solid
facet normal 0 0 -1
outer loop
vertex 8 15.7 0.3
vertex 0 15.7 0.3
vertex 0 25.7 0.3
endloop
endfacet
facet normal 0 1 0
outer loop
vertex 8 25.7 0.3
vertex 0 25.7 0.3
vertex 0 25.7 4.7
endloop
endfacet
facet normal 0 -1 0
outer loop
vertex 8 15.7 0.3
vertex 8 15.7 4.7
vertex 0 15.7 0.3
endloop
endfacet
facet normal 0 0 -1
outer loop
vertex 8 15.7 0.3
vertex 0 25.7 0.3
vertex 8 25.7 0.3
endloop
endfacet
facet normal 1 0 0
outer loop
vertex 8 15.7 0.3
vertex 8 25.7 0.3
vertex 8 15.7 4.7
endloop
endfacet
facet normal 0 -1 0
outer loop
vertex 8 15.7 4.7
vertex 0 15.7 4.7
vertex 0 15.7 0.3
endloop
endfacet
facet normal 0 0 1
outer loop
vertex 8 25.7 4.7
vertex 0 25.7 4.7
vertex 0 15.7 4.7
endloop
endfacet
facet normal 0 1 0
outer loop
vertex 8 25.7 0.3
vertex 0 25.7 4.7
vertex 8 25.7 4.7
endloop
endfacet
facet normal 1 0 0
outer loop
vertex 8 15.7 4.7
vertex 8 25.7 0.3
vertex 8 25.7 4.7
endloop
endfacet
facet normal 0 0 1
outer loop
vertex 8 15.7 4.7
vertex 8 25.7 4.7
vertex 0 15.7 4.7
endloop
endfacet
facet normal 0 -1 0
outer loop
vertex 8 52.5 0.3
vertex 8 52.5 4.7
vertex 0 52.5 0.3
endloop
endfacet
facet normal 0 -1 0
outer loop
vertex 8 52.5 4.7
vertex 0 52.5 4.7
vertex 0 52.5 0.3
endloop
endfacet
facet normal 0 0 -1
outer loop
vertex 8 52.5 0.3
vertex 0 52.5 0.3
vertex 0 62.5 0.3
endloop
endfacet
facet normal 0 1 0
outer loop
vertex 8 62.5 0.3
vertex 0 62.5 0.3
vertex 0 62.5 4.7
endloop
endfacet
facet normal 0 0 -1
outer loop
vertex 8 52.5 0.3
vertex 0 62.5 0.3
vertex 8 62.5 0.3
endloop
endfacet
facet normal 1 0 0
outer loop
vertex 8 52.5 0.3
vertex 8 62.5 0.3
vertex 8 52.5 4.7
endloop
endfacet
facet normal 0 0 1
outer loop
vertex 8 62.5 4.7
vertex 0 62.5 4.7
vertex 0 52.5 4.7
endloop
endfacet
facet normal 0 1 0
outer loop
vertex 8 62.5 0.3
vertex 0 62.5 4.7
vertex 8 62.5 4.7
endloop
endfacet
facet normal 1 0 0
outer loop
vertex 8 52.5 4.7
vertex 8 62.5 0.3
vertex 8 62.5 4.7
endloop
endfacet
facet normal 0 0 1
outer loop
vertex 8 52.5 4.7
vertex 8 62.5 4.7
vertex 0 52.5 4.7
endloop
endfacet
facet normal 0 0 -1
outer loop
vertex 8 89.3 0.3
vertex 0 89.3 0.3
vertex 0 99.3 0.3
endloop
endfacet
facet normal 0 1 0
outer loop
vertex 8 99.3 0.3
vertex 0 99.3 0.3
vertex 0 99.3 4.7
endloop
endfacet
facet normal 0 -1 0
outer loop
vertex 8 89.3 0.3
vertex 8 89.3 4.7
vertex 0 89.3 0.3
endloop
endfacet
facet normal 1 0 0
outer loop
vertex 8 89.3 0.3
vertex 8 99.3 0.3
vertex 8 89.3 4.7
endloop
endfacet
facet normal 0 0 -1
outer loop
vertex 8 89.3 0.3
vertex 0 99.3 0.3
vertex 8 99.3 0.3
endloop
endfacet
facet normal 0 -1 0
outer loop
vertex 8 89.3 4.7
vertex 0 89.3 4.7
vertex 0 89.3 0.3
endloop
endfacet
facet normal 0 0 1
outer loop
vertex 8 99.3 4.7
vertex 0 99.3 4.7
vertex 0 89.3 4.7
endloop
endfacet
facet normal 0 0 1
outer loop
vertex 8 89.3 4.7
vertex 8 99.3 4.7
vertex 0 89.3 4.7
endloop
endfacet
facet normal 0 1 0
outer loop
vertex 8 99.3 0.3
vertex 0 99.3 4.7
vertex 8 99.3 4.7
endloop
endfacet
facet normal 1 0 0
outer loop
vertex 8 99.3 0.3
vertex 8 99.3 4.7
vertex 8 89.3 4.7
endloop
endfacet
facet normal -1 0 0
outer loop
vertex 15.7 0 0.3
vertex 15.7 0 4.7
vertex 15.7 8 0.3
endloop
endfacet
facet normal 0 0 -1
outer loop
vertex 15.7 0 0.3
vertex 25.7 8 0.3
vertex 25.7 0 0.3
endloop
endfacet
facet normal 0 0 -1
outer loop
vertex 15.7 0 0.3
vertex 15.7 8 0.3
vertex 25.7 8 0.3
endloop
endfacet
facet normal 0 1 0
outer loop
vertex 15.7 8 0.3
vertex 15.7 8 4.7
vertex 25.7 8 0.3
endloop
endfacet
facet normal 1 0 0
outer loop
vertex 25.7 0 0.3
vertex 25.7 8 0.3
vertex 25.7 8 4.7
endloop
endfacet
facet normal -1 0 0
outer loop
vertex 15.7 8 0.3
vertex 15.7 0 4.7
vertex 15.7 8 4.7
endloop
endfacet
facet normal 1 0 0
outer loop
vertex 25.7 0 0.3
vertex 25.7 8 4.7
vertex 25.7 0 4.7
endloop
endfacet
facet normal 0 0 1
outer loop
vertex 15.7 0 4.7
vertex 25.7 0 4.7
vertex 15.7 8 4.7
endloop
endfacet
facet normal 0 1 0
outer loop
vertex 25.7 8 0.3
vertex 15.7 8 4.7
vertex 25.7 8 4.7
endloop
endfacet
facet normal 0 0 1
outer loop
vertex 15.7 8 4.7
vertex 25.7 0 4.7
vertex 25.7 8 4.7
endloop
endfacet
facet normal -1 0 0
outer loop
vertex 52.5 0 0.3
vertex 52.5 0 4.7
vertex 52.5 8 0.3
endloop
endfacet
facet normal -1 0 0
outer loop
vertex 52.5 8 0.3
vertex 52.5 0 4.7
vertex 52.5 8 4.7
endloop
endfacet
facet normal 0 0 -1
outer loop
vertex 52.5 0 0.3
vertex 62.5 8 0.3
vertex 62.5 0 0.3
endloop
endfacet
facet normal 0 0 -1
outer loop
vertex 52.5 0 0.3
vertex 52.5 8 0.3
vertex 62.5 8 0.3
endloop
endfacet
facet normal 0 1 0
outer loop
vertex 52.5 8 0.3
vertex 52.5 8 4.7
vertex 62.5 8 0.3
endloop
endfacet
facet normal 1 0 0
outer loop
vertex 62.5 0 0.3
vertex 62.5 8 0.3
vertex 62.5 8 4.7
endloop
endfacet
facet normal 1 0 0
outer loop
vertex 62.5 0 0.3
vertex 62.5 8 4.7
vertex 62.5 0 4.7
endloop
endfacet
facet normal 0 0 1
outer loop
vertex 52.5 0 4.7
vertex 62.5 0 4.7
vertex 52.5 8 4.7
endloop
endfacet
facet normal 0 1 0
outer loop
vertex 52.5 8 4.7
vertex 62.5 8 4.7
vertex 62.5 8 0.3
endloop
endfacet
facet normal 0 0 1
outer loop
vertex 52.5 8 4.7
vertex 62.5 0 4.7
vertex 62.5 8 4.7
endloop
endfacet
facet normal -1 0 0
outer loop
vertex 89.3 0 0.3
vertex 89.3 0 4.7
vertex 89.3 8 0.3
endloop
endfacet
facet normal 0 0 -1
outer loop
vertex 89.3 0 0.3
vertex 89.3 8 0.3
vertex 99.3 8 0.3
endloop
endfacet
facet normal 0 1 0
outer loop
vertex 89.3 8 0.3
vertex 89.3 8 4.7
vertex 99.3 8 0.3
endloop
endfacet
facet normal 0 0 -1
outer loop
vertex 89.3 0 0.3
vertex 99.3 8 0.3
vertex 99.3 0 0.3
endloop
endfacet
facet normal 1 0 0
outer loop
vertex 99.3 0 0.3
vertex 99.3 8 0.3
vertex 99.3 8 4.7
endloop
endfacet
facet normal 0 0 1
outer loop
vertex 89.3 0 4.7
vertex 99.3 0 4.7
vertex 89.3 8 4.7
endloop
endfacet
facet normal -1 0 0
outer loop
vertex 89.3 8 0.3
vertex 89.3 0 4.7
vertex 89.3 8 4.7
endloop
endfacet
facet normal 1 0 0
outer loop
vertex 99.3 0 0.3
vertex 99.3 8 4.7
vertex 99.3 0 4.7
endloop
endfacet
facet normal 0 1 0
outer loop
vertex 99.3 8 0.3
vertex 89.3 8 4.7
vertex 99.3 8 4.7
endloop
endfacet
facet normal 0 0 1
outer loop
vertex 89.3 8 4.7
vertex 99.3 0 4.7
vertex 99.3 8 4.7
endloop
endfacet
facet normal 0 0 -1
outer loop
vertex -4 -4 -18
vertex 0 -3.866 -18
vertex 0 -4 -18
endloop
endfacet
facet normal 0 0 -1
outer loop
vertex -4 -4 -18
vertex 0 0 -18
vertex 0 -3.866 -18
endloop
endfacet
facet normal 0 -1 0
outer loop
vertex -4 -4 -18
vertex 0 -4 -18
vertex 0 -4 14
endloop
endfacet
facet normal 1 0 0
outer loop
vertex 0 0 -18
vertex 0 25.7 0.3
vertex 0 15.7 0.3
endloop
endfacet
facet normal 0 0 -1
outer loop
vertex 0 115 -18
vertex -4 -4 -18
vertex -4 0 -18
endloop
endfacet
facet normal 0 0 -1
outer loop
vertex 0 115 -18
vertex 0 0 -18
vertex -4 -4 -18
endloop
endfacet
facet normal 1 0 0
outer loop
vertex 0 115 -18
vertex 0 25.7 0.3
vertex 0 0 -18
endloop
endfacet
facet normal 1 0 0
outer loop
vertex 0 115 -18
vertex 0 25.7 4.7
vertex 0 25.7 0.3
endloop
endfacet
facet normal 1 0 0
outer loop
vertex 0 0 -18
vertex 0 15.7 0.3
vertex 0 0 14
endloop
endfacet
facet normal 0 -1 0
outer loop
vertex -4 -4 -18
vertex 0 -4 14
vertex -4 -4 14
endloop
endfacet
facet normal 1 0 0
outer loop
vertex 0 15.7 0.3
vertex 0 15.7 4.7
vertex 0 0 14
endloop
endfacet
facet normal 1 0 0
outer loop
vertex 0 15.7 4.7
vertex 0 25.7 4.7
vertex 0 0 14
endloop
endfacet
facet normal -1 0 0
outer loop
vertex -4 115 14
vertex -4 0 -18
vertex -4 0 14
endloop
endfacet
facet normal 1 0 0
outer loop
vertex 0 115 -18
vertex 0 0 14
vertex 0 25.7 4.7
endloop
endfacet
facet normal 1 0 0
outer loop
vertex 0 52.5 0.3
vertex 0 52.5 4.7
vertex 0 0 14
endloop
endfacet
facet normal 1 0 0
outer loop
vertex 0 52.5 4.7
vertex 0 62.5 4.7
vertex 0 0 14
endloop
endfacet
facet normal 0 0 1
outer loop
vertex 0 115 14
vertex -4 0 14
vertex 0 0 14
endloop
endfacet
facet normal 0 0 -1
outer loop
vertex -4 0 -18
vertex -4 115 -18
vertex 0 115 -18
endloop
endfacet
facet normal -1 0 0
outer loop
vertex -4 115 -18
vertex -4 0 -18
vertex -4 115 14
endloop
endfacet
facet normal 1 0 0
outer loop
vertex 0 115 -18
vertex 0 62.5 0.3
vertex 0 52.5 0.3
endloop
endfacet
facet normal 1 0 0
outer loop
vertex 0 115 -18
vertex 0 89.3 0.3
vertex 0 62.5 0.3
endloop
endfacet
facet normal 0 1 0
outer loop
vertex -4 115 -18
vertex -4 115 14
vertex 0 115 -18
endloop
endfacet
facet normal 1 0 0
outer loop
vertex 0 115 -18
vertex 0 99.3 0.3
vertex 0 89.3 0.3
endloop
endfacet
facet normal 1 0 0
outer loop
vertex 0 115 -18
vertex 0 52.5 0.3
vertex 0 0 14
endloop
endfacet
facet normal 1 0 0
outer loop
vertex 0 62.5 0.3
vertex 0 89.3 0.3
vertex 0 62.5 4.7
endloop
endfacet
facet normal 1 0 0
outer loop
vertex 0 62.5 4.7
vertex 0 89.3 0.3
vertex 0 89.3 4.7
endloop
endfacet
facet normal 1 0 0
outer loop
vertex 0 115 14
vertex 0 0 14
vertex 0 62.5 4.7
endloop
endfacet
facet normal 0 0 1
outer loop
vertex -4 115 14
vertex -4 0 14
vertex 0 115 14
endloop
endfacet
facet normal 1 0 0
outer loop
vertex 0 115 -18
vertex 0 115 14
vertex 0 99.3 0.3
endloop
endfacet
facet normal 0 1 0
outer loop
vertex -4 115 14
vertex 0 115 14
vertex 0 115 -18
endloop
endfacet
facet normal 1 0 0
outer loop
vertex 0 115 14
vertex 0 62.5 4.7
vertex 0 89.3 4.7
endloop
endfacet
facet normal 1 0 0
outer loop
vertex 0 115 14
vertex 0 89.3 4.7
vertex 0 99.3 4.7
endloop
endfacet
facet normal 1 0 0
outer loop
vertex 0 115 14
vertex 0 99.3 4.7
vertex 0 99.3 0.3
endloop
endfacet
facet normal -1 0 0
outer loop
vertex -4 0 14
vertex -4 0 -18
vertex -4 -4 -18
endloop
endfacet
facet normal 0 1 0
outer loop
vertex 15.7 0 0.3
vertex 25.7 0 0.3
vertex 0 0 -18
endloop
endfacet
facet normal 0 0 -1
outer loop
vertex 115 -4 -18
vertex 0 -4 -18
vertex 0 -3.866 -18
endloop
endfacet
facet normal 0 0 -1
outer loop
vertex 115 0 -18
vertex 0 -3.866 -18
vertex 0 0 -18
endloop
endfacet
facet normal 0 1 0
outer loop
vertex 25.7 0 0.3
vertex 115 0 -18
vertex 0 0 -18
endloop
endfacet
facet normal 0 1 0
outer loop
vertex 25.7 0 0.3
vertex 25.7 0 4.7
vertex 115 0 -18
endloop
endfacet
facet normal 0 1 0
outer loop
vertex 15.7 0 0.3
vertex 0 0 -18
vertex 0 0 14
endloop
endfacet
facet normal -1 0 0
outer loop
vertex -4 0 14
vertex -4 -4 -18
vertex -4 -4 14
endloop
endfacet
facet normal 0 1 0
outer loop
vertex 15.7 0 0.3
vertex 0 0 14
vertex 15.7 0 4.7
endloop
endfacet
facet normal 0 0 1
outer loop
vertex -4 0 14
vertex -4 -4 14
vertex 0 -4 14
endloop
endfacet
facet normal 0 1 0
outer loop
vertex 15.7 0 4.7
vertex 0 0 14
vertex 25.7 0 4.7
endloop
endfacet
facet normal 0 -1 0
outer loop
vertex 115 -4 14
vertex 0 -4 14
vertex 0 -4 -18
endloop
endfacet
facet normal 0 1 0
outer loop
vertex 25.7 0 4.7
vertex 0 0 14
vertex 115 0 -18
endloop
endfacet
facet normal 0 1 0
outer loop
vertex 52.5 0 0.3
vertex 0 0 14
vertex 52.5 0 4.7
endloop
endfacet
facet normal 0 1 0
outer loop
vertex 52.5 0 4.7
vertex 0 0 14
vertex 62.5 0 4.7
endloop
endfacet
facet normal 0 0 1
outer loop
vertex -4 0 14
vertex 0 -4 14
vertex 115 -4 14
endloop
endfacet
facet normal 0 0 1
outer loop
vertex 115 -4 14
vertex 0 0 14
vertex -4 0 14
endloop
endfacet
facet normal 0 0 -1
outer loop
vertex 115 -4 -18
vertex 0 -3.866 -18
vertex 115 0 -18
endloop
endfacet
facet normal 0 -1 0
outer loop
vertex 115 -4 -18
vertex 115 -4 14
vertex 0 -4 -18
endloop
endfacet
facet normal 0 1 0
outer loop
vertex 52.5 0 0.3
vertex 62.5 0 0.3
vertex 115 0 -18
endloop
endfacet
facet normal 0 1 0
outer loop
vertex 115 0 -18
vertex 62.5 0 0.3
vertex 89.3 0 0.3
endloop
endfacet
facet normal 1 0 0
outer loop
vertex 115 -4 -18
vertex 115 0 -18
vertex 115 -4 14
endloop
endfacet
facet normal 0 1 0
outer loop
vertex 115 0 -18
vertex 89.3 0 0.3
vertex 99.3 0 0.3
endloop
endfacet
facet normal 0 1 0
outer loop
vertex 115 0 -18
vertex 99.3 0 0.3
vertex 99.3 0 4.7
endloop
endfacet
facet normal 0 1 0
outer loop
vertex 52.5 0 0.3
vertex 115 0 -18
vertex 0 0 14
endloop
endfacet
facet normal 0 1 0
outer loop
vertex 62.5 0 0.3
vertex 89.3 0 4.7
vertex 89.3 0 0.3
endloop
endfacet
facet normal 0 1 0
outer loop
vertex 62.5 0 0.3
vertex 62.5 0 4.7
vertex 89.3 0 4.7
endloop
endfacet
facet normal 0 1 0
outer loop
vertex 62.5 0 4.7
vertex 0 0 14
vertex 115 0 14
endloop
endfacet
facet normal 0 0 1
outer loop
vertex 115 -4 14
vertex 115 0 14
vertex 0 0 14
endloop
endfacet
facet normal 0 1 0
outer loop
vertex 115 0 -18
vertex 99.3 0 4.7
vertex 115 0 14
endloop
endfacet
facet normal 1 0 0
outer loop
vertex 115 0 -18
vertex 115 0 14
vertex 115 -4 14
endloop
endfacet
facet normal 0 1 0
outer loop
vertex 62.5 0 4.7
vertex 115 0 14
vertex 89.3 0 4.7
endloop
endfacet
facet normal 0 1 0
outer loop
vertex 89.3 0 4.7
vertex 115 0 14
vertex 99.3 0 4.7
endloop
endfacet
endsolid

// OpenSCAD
// ============================================================================
//  CORNER FENCE — L-bracket half of the two-piece corner first-hole jig
//  For drilling the hole grid of an 18mm plywood pegboard panel.
//
//  Pattern assumed: 10mm holes on a 50mm grid, first hole 25mm from each edge.
//
//  Coordinate convention (matches the other jigs in this folder):
//    - Panel top surface  = z = 0
//    - Panel interior     = x > 0, y > 0   (panel corner at the origin)
//    - Fence inner faces at x = 0 and y = 0 bear against the panel edge faces
//      for the full panel_t below z = 0 (plus fence_top above).
//
//  Two walls wrap the outside of the panel corner. Six tabs (three per wall)
//  reach inward and drop into the notches of corner_base.scad — that joint
//  registers the fence square to the plate; glue it and it's permanent.
//
//  PRINT: as modelled — the wall bottom edges (panel_t below z=0) stand on
//  the bed. Walls are vertical plates: clean print, no supports.
//  Use a BRIM — the bed contact is two 4mm-wide strips (~120mm each).
//
//  Joint dimensions MUST match corner_base.scad — keep them in sync.
// ============================================================================

// ------------------------- PANEL / PATTERN -------------------------
edge_offset = 25;   // [mm] first hole centre distance from each edge
pitch       = 50;   // [mm] hole grid spacing
panel_t     = 18;   // [mm] plywood thickness (fences reach this far below z=0)

// --------------------------- SEED GUIDES ---------------------------
// Must match corner_base.scad so `reach` (fence length) stays identical.
seed_cols = 2;
seed_rows = 2;

// ------------------------------ BODY -------------------------------
fence_t      = 4;    // [mm] fence wall thickness
fence_top    = 14;   // [mm] fence height above panel top surface (z=0)
clamp_gap    = 25;   // [mm] (kept for reach parity with corner_base.scad)
edge_margin  = 15;

// --------------------- FENCE JOINT (tabs) ---------------------------
// Tabs reach +x / +y into the plate's edge notches. tab_w < notch_w=12,
// tab reach (wall_embed + tab_in) < notch_d=8.4, z inside plate_t=5.
tab_w      = 10;     // [mm] tab width (1mm clearance per side in the notch)
tab_t      = 4.4;    // [mm] tab height (0.3mm glue gap top and bottom)
tab_z0     = 0.3;    // [mm] tab bottom height above panel top (z=0)
tab_in     = 8;      // [mm] tab reach into the plate notch
tab_frac   = [0.18, 0.5, 0.82];  // tab positions as fractions of reach

// ---------------------------- COMPUTED -----------------------------
span_x  = edge_offset + (seed_cols - 1) * pitch;
span_y  = edge_offset + (seed_rows - 1) * pitch;
span    = max(span_x, span_y);
clamp_p = span + clamp_gap;
reach   = clamp_p + edge_margin;   // fence length (must equal plate extent)
tab_pos = [for (f = tab_frac) f * reach];

assert(seed_cols >= 1 && seed_rows >= 1, "seed_cols / seed_rows must be >= 1");

module corner_fence() {
    union() {
        // ---- fence against left edge (x = 0), runs along +y ----
        // x in [-fence_t, 0], y in [-fence_t, reach], z in [-panel_t, fence_top]
        translate([-fence_t, -fence_t, -panel_t])
            cube([fence_t, reach + fence_t, panel_t + fence_top]);

        // ---- fence against bottom edge (y = 0), runs along +x ----
        // x in [-fence_t, reach], y in [-fence_t, 0]
        translate([-fence_t, -fence_t, -panel_t])
            cube([reach + fence_t, fence_t, panel_t + fence_top]);

        // ---- tabs into the plate notches (x = 0 edge wall) ----
        // reach +x: root embedded 2mm in the wall, tip at tab_in into notch
        for (c = tab_pos)
            translate([-2, c - tab_w / 2, tab_z0])
                cube([2 + tab_in, tab_w, tab_t]);

        // ---- tabs into the plate notches (y = 0 edge wall) ----
        // reach +y
        for (c = tab_pos)
            translate([c - tab_w / 2, -2, tab_z0])
                cube([tab_w, 2 + tab_in, tab_t]);
    }
}

corner_fence();
